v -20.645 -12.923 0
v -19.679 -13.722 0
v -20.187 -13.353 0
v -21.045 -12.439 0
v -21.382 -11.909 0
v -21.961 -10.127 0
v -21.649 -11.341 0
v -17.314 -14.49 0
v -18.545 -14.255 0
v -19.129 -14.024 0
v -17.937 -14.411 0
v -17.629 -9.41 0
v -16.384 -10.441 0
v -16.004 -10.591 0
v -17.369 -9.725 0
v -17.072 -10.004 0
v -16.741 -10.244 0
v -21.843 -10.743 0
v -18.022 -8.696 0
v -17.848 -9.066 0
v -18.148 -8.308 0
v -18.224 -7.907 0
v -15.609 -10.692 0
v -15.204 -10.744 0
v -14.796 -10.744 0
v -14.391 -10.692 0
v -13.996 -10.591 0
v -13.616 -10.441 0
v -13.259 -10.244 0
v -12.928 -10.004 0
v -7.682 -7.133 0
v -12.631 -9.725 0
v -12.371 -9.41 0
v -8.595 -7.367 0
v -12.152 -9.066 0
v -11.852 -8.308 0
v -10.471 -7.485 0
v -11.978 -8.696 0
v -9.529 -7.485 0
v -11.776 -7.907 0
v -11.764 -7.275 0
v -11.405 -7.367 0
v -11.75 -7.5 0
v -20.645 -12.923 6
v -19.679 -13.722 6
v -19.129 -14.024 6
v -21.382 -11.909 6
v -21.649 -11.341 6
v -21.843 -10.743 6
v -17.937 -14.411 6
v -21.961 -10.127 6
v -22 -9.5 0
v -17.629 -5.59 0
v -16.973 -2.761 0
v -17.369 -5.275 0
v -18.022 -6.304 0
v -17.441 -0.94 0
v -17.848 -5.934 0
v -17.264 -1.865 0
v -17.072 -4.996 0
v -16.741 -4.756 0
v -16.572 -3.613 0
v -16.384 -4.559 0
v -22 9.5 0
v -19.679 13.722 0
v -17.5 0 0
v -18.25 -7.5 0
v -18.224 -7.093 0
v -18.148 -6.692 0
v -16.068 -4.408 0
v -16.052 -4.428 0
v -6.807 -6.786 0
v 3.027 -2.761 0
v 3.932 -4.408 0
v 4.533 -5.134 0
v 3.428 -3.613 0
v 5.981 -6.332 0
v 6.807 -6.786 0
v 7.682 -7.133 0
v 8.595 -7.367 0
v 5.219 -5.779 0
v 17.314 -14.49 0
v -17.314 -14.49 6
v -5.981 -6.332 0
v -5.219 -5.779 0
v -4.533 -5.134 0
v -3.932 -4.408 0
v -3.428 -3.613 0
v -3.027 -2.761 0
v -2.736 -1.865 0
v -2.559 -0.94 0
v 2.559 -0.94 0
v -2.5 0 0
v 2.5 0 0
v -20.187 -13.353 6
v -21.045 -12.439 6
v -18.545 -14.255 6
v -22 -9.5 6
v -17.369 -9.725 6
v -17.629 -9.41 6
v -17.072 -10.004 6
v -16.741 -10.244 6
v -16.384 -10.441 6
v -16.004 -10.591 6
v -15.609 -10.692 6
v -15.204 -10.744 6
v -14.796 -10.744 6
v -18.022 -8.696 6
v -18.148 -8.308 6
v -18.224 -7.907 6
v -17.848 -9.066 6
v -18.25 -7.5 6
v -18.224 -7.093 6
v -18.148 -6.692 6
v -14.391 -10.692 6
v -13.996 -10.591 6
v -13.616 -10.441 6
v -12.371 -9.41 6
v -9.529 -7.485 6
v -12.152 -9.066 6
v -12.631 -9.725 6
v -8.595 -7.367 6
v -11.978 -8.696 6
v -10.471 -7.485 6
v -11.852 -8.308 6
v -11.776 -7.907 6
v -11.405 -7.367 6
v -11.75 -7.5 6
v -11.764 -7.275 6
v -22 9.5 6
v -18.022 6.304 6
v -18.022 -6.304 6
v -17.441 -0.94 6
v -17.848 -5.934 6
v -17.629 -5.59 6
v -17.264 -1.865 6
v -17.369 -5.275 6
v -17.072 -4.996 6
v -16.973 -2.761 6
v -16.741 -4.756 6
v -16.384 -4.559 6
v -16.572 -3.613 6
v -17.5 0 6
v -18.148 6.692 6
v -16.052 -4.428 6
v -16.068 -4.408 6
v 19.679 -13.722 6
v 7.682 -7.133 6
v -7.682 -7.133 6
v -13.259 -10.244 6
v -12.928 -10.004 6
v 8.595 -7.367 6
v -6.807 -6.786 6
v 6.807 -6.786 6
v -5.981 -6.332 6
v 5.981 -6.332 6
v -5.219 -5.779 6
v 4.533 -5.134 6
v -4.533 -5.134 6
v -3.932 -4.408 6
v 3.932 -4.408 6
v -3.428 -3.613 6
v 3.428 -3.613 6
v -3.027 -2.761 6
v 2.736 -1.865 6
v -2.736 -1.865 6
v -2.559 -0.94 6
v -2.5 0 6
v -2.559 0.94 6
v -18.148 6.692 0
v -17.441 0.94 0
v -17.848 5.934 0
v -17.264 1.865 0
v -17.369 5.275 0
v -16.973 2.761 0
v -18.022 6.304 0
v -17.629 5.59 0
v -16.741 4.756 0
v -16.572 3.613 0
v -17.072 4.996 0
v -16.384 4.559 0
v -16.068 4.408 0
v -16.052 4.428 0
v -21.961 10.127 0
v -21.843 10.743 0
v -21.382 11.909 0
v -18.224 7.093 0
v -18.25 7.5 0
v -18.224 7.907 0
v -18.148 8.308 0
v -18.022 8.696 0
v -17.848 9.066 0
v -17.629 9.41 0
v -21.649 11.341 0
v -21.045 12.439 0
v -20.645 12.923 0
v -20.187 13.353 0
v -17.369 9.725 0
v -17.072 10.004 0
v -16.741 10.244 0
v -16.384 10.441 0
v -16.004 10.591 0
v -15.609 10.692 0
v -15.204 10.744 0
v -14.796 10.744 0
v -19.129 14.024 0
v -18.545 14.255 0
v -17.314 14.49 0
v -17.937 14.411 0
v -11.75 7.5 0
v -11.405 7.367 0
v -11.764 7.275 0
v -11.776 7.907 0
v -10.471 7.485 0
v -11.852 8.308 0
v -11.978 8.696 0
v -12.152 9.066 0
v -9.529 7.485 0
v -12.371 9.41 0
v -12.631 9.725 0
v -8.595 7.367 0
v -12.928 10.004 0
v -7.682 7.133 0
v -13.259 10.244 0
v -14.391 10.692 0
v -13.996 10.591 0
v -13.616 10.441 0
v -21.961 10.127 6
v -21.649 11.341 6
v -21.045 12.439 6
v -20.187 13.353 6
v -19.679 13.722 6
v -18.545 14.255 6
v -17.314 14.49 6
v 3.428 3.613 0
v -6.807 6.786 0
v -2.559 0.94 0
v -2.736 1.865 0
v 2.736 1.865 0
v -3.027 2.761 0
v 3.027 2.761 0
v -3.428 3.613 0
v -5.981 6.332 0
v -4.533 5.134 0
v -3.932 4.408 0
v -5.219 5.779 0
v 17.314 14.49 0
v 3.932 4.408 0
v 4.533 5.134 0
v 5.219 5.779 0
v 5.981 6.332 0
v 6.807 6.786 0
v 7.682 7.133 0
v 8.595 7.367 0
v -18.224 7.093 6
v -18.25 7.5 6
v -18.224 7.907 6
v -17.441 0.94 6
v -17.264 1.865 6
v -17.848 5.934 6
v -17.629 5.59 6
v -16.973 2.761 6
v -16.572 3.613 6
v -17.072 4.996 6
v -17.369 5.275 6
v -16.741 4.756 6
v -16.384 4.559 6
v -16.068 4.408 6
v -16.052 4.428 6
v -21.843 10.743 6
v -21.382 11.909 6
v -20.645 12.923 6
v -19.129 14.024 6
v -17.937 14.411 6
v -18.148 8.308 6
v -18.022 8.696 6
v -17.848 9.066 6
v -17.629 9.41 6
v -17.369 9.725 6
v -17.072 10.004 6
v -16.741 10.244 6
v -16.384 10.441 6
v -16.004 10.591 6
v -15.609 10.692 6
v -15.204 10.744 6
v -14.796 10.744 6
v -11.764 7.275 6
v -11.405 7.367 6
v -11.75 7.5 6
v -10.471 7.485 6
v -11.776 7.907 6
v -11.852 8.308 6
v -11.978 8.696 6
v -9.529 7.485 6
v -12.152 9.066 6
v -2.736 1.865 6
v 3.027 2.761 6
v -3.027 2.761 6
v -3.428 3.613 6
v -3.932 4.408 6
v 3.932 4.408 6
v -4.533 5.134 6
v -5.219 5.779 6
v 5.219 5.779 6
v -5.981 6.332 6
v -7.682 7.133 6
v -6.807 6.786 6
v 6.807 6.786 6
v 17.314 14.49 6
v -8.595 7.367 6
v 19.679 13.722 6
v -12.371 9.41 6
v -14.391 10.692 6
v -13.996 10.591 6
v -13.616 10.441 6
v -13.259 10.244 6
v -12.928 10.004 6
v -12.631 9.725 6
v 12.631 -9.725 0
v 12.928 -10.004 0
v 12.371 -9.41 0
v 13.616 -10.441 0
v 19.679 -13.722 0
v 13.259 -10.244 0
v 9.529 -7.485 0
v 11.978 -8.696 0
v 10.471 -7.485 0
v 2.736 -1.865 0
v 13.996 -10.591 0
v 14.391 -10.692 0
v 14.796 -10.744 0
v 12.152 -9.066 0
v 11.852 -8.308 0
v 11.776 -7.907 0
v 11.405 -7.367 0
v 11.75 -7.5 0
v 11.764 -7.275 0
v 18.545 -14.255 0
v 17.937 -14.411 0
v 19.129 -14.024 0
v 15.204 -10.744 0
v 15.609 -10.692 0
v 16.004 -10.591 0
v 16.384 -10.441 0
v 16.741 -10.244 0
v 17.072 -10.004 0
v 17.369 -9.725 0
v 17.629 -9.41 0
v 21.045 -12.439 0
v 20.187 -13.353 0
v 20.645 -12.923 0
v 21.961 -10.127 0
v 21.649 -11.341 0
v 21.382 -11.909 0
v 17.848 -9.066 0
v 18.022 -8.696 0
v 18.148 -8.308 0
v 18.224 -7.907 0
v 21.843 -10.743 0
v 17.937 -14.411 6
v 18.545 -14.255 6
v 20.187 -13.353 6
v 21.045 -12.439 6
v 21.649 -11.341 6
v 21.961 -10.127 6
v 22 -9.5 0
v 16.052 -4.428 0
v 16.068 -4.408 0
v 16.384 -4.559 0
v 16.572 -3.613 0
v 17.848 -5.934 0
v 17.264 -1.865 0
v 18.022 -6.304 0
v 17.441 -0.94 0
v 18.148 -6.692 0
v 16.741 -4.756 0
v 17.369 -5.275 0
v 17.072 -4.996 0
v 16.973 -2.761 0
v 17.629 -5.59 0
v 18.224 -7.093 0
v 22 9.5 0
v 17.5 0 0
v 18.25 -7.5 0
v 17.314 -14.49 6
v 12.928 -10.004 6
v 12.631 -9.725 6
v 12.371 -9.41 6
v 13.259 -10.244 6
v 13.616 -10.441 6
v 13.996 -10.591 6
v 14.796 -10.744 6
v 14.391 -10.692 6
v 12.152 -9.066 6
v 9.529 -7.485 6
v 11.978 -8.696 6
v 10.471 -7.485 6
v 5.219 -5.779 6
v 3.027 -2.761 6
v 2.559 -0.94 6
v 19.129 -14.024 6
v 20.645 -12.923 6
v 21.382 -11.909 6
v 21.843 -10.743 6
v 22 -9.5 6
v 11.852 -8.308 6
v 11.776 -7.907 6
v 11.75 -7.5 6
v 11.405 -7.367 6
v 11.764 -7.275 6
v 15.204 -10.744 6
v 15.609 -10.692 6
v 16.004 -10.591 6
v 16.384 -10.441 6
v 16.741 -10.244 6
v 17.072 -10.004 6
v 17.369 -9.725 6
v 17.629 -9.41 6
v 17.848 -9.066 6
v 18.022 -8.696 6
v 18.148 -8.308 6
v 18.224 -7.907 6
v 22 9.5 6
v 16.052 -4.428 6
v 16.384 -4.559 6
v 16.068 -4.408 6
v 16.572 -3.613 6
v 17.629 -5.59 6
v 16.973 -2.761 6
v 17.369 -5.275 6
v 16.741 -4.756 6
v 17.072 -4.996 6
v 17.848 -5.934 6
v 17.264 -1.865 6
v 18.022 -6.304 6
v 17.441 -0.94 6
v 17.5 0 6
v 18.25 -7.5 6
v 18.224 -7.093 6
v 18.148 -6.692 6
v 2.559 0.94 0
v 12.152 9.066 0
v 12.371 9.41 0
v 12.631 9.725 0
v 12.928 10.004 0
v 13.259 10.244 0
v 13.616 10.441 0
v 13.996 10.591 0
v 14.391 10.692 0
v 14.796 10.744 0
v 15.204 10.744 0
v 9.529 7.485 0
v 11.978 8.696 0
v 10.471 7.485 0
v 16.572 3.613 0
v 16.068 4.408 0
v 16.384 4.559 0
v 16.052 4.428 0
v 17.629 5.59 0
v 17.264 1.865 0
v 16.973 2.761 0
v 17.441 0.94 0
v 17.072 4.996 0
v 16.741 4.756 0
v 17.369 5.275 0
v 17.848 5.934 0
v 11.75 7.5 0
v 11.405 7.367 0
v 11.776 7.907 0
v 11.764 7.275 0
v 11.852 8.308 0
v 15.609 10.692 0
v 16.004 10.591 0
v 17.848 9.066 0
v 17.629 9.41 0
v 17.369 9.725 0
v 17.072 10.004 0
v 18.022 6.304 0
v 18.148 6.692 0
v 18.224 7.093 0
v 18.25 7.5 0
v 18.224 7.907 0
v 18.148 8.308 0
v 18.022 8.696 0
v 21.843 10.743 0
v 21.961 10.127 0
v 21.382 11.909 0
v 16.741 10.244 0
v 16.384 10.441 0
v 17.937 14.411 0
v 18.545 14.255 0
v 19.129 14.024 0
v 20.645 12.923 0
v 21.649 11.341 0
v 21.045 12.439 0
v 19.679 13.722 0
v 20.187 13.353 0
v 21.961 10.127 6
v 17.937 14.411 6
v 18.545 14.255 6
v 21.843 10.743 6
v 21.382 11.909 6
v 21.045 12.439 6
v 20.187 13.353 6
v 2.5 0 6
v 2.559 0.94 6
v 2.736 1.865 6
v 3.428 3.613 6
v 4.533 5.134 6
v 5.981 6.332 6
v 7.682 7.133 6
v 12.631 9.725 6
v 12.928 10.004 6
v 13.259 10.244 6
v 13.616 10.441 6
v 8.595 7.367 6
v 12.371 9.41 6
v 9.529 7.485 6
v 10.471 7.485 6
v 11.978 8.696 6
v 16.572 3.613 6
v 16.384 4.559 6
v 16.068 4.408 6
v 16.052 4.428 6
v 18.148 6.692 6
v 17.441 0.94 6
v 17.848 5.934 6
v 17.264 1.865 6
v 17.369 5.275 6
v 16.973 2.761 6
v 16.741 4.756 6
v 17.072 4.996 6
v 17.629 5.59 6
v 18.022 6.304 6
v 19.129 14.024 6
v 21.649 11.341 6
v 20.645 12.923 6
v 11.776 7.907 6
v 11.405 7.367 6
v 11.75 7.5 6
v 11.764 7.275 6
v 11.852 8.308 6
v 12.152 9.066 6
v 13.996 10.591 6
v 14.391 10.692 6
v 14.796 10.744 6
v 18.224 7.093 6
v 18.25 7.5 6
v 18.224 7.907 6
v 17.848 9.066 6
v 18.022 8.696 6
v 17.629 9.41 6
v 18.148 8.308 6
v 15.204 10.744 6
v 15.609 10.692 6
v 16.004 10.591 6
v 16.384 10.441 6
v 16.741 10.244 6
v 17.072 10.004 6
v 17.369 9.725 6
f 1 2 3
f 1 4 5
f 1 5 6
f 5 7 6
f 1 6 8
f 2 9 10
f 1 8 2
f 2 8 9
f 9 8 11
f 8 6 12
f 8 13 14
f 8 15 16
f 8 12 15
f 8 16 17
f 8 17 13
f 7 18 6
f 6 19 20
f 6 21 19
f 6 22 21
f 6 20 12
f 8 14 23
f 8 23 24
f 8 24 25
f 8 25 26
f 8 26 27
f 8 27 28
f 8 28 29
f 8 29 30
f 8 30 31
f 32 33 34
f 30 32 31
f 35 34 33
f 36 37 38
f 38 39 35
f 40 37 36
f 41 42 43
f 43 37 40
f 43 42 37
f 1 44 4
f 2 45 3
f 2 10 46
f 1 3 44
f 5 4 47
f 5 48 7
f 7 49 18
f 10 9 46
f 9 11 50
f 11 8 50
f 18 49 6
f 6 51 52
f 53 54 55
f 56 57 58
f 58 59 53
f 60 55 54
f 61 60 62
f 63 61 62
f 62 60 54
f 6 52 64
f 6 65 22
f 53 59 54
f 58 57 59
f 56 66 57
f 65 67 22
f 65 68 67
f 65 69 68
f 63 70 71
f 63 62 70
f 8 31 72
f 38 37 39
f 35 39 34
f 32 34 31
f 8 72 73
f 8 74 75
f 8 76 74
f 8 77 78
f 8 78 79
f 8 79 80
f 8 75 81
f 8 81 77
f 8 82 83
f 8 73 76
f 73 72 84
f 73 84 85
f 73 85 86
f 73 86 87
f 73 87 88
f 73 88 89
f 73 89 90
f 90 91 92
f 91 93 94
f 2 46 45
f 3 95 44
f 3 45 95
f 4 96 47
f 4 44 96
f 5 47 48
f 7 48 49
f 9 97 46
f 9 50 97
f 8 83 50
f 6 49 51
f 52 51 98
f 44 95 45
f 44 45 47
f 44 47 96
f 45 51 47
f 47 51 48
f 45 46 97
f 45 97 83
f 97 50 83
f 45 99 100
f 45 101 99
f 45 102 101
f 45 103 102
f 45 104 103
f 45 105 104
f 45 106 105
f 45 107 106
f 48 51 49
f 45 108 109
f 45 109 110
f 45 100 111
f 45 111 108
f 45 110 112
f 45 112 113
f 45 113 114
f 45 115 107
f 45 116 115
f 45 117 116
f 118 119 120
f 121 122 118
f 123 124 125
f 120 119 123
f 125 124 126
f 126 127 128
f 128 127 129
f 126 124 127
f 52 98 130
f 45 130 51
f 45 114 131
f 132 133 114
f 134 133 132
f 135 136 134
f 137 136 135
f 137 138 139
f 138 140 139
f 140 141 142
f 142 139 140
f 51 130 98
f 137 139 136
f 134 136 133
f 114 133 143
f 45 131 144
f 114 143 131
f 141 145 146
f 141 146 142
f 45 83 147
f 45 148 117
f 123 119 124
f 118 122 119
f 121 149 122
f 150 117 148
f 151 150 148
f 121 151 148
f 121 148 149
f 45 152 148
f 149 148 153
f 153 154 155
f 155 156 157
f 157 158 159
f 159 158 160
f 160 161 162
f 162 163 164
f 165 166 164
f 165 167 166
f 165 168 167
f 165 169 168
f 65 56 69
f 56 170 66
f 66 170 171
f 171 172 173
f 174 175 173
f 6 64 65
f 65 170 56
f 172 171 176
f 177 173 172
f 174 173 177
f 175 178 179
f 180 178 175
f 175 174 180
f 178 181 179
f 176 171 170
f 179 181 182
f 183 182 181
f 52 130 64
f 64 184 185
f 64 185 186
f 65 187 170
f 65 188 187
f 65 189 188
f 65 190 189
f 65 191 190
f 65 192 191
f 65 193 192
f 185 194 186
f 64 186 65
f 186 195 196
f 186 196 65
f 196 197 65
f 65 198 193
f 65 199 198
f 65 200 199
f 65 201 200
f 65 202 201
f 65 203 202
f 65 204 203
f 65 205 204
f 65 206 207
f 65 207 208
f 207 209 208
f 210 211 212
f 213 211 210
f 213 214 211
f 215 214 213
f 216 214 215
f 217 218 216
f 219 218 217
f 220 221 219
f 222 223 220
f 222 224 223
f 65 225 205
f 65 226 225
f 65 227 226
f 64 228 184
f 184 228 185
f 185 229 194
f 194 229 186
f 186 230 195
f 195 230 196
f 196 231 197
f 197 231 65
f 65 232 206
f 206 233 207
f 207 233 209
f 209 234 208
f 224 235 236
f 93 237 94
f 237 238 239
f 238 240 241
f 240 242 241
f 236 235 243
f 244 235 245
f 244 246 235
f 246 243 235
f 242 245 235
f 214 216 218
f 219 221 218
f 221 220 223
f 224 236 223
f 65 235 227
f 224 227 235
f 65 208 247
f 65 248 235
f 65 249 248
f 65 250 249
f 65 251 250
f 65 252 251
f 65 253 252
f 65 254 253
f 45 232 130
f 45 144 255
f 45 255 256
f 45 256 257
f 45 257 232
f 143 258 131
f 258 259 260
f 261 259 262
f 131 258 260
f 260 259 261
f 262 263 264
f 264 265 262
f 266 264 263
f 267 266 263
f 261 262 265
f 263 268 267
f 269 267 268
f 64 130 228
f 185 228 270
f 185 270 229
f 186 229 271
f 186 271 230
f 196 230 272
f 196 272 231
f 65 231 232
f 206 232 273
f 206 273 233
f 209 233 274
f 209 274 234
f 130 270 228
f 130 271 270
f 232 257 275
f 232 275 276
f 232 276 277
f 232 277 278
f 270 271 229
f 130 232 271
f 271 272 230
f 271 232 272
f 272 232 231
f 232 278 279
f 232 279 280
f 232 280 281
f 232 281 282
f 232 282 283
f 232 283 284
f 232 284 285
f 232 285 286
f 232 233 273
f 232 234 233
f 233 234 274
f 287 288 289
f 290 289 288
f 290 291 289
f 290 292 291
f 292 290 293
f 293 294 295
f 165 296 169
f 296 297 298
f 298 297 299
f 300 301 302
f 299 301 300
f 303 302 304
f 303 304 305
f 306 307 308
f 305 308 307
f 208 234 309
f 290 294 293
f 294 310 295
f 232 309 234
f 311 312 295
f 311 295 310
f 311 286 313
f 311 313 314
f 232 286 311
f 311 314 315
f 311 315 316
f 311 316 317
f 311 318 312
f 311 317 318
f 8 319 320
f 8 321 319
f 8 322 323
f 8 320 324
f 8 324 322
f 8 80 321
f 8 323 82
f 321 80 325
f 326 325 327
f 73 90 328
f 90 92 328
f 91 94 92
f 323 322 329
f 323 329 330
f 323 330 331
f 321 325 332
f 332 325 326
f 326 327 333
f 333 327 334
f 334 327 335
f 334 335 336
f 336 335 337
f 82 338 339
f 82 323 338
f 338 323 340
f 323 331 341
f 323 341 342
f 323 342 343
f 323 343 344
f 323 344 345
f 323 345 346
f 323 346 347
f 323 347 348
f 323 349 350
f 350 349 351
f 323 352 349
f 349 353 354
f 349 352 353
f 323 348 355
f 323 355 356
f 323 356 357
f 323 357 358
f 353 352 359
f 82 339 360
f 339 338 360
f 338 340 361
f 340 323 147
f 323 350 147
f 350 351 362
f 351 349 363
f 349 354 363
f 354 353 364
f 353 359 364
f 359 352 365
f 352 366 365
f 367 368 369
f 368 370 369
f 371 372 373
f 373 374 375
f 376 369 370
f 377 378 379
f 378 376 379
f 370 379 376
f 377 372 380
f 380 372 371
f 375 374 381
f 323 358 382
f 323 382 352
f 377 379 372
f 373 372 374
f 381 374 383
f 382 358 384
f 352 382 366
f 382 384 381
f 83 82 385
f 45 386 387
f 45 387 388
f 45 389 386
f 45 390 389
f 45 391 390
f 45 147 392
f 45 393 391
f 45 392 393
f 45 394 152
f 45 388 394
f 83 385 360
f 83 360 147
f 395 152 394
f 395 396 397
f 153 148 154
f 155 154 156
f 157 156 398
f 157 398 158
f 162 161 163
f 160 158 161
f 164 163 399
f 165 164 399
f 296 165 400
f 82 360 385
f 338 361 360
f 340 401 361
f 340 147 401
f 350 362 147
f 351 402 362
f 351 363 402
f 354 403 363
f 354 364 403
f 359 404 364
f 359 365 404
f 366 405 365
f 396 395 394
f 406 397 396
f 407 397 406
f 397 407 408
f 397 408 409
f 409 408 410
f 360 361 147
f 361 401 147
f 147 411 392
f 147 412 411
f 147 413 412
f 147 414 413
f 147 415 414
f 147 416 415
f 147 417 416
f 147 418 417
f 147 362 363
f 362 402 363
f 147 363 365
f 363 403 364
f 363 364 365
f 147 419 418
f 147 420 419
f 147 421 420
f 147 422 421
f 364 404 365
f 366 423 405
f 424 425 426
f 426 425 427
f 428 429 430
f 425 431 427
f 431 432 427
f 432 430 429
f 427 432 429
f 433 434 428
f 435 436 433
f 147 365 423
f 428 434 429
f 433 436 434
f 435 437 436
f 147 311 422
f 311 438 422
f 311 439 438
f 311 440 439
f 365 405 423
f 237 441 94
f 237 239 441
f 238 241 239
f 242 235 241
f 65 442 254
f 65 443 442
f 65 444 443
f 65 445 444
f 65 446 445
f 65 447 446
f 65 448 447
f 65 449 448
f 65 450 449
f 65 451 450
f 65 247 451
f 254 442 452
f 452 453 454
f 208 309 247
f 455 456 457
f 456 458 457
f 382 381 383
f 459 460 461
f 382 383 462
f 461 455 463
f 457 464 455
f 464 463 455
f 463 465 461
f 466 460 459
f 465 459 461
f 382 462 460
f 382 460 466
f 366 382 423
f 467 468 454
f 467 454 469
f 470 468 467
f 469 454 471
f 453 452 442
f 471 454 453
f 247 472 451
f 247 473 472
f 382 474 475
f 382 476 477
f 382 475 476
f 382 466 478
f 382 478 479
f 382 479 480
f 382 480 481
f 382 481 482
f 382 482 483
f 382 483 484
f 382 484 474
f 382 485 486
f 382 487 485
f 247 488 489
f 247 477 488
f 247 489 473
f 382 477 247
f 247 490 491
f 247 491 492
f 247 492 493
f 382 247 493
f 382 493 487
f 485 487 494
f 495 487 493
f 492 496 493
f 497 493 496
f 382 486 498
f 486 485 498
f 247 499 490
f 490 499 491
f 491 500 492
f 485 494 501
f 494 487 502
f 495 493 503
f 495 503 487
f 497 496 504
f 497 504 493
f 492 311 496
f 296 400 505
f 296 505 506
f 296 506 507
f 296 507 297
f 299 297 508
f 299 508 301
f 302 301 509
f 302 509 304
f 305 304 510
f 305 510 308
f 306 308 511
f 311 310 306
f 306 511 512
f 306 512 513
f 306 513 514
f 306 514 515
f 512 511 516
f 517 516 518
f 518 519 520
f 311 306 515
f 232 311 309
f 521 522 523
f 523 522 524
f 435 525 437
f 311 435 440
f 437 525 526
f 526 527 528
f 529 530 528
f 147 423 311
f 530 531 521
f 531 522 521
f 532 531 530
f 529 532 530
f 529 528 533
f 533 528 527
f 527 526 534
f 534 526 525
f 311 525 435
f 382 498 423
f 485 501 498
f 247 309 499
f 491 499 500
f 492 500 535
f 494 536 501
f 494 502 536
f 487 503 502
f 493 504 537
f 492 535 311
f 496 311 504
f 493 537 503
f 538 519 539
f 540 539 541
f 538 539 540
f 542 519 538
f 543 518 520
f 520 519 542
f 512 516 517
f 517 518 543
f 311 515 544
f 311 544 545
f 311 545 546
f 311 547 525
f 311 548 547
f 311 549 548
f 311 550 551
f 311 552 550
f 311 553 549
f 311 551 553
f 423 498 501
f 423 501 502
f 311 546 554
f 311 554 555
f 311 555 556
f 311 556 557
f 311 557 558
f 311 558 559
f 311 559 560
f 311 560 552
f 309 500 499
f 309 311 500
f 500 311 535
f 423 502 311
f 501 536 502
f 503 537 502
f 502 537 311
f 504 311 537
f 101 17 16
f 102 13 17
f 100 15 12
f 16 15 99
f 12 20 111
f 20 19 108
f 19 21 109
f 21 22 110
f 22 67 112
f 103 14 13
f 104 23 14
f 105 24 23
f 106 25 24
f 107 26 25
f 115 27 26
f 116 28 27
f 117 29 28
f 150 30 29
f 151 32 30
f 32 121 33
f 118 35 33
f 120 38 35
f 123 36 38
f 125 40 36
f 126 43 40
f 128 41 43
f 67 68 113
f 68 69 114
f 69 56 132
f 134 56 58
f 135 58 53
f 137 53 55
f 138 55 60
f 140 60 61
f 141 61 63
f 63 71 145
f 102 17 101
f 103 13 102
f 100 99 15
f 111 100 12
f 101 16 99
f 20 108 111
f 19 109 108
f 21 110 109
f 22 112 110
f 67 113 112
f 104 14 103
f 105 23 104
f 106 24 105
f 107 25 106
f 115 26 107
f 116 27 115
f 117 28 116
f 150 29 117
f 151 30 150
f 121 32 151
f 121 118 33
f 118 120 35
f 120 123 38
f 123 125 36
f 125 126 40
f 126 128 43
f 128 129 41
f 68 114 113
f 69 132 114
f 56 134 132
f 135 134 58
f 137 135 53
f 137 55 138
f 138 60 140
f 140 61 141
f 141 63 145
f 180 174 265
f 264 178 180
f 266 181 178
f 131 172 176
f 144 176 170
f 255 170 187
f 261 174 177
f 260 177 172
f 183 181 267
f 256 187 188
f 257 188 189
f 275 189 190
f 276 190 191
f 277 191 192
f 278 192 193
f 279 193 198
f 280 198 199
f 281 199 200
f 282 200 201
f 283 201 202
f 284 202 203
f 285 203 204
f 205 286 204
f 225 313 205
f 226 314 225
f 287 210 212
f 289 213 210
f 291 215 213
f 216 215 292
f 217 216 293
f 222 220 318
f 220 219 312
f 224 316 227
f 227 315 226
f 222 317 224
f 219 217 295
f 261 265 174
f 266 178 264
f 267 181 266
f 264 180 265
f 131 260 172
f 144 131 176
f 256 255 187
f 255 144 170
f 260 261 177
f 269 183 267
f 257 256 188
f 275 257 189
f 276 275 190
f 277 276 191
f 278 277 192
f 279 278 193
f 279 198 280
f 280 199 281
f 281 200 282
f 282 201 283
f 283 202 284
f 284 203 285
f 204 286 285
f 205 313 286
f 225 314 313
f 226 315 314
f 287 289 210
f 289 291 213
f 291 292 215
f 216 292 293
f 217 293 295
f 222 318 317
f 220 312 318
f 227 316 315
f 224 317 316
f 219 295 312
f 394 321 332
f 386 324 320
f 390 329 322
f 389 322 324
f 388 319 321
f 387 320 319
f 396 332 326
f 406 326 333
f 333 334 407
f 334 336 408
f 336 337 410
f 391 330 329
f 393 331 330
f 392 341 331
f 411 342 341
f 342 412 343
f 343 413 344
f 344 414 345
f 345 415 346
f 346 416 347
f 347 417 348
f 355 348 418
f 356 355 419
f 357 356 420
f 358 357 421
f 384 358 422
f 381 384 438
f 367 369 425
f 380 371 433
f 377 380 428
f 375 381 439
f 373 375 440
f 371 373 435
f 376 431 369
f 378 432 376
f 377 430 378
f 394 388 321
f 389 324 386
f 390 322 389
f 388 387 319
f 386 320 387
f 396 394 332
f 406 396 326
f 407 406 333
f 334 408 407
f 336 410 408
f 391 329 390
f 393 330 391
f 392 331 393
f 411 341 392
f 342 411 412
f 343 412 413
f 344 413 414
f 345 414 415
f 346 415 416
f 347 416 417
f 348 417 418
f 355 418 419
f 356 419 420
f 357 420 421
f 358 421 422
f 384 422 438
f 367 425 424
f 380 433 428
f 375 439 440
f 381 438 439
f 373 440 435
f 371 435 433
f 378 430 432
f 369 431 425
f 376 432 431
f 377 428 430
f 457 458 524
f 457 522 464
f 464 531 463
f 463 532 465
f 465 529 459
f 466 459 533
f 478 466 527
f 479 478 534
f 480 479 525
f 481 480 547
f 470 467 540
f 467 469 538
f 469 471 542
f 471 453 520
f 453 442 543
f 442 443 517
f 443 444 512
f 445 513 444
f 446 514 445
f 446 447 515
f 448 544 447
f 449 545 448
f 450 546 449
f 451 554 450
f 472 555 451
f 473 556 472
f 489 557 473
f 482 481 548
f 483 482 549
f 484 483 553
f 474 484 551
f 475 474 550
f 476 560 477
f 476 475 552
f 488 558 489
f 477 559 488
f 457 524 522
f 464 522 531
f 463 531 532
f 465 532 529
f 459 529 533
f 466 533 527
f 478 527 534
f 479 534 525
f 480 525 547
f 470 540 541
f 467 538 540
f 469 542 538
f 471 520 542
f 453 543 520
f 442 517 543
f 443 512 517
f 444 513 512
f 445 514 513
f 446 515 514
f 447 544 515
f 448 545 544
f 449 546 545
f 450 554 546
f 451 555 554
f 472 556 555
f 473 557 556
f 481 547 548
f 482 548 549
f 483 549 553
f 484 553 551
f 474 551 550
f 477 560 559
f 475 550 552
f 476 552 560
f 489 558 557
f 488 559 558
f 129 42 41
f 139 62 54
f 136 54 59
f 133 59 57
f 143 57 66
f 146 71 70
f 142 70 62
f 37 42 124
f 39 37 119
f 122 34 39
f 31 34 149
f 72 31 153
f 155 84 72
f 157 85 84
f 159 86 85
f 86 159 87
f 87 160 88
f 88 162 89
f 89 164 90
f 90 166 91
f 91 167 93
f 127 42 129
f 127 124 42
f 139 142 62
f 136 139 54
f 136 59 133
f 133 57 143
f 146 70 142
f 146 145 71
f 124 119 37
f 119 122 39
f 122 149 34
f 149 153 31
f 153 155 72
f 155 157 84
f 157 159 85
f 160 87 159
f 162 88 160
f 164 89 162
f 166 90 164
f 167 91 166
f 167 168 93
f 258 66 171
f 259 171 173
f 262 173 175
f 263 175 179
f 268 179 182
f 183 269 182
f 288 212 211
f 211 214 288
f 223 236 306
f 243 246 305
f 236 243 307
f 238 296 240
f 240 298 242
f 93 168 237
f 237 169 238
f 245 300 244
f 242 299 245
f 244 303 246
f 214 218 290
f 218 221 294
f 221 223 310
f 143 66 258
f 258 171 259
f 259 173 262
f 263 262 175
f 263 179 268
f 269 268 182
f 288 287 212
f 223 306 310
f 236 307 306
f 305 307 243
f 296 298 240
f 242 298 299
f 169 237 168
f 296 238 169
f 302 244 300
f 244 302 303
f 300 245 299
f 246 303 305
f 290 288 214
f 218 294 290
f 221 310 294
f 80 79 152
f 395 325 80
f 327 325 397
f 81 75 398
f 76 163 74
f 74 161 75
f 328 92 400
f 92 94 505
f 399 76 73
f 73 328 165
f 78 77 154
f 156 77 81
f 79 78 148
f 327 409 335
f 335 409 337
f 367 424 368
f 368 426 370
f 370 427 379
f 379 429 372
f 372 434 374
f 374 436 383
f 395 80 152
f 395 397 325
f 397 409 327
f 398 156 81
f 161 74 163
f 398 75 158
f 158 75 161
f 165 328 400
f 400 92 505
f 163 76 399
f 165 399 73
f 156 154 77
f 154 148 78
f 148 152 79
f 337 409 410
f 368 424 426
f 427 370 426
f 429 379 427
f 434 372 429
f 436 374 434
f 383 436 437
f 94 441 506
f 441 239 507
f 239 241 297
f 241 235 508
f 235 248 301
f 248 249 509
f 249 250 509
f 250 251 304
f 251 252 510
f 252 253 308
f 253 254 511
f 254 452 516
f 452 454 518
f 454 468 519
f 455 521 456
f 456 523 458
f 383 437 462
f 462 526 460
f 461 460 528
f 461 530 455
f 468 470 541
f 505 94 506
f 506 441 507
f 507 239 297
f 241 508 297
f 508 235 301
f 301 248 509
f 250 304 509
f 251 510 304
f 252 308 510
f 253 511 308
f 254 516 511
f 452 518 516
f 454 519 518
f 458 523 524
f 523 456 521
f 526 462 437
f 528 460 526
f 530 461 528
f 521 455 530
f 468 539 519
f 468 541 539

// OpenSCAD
$fn = 50;

difference() {
	union() {
		hull() {
			translate(v = [-17.0, 9.5, 0]) {
				cylinder(h = 6, r = 5);
			}
			translate(v = [17.0, 9.5, 0]) {
				cylinder(h = 6, r = 5);
			}
			translate(v = [-17.0, -9.5, 0]) {
				cylinder(h = 6, r = 5);
			}
			translate(v = [17.0, -9.5, 0]) {
				cylinder(h = 6, r = 5);
			}
		}
	}
	union() {
		translate(v = [-15.0, -7.5, -100.0]) {
			cylinder(h = 200, r = 3.25);
		}
		translate(v = [-15.0, 7.5, -100.0]) {
			cylinder(h = 200, r = 3.25);
		}
		translate(v = [15.0, -7.5, -100.0]) {
			cylinder(h = 200, r = 3.25);
		}
		translate(v = [15.0, 7.5, -100.0]) {
			cylinder(h = 200, r = 3.25);
		}
		translate(v = [-15.0, -7.5, -100.0]) {
			cylinder(h = 200, r = 1.8);
		}
		translate(v = [-15.0, 7.5, -100.0]) {
			cylinder(h = 200, r = 1.8);
		}
		translate(v = [15.0, -7.5, -100.0]) {
			cylinder(h = 200, r = 1.8);
		}
		translate(v = [15.0, 7.5, -100.0]) {
			cylinder(h = 200, r = 1.8);
		}
		translate(v = [-10.0, 0, 0.0]) {
			cylinder(h = 6, r = 7.5);
		}
		translate(v = [10.0, 0, 0.0]) {
			cylinder(h = 6, r = 7.5);
		}
	}
}
